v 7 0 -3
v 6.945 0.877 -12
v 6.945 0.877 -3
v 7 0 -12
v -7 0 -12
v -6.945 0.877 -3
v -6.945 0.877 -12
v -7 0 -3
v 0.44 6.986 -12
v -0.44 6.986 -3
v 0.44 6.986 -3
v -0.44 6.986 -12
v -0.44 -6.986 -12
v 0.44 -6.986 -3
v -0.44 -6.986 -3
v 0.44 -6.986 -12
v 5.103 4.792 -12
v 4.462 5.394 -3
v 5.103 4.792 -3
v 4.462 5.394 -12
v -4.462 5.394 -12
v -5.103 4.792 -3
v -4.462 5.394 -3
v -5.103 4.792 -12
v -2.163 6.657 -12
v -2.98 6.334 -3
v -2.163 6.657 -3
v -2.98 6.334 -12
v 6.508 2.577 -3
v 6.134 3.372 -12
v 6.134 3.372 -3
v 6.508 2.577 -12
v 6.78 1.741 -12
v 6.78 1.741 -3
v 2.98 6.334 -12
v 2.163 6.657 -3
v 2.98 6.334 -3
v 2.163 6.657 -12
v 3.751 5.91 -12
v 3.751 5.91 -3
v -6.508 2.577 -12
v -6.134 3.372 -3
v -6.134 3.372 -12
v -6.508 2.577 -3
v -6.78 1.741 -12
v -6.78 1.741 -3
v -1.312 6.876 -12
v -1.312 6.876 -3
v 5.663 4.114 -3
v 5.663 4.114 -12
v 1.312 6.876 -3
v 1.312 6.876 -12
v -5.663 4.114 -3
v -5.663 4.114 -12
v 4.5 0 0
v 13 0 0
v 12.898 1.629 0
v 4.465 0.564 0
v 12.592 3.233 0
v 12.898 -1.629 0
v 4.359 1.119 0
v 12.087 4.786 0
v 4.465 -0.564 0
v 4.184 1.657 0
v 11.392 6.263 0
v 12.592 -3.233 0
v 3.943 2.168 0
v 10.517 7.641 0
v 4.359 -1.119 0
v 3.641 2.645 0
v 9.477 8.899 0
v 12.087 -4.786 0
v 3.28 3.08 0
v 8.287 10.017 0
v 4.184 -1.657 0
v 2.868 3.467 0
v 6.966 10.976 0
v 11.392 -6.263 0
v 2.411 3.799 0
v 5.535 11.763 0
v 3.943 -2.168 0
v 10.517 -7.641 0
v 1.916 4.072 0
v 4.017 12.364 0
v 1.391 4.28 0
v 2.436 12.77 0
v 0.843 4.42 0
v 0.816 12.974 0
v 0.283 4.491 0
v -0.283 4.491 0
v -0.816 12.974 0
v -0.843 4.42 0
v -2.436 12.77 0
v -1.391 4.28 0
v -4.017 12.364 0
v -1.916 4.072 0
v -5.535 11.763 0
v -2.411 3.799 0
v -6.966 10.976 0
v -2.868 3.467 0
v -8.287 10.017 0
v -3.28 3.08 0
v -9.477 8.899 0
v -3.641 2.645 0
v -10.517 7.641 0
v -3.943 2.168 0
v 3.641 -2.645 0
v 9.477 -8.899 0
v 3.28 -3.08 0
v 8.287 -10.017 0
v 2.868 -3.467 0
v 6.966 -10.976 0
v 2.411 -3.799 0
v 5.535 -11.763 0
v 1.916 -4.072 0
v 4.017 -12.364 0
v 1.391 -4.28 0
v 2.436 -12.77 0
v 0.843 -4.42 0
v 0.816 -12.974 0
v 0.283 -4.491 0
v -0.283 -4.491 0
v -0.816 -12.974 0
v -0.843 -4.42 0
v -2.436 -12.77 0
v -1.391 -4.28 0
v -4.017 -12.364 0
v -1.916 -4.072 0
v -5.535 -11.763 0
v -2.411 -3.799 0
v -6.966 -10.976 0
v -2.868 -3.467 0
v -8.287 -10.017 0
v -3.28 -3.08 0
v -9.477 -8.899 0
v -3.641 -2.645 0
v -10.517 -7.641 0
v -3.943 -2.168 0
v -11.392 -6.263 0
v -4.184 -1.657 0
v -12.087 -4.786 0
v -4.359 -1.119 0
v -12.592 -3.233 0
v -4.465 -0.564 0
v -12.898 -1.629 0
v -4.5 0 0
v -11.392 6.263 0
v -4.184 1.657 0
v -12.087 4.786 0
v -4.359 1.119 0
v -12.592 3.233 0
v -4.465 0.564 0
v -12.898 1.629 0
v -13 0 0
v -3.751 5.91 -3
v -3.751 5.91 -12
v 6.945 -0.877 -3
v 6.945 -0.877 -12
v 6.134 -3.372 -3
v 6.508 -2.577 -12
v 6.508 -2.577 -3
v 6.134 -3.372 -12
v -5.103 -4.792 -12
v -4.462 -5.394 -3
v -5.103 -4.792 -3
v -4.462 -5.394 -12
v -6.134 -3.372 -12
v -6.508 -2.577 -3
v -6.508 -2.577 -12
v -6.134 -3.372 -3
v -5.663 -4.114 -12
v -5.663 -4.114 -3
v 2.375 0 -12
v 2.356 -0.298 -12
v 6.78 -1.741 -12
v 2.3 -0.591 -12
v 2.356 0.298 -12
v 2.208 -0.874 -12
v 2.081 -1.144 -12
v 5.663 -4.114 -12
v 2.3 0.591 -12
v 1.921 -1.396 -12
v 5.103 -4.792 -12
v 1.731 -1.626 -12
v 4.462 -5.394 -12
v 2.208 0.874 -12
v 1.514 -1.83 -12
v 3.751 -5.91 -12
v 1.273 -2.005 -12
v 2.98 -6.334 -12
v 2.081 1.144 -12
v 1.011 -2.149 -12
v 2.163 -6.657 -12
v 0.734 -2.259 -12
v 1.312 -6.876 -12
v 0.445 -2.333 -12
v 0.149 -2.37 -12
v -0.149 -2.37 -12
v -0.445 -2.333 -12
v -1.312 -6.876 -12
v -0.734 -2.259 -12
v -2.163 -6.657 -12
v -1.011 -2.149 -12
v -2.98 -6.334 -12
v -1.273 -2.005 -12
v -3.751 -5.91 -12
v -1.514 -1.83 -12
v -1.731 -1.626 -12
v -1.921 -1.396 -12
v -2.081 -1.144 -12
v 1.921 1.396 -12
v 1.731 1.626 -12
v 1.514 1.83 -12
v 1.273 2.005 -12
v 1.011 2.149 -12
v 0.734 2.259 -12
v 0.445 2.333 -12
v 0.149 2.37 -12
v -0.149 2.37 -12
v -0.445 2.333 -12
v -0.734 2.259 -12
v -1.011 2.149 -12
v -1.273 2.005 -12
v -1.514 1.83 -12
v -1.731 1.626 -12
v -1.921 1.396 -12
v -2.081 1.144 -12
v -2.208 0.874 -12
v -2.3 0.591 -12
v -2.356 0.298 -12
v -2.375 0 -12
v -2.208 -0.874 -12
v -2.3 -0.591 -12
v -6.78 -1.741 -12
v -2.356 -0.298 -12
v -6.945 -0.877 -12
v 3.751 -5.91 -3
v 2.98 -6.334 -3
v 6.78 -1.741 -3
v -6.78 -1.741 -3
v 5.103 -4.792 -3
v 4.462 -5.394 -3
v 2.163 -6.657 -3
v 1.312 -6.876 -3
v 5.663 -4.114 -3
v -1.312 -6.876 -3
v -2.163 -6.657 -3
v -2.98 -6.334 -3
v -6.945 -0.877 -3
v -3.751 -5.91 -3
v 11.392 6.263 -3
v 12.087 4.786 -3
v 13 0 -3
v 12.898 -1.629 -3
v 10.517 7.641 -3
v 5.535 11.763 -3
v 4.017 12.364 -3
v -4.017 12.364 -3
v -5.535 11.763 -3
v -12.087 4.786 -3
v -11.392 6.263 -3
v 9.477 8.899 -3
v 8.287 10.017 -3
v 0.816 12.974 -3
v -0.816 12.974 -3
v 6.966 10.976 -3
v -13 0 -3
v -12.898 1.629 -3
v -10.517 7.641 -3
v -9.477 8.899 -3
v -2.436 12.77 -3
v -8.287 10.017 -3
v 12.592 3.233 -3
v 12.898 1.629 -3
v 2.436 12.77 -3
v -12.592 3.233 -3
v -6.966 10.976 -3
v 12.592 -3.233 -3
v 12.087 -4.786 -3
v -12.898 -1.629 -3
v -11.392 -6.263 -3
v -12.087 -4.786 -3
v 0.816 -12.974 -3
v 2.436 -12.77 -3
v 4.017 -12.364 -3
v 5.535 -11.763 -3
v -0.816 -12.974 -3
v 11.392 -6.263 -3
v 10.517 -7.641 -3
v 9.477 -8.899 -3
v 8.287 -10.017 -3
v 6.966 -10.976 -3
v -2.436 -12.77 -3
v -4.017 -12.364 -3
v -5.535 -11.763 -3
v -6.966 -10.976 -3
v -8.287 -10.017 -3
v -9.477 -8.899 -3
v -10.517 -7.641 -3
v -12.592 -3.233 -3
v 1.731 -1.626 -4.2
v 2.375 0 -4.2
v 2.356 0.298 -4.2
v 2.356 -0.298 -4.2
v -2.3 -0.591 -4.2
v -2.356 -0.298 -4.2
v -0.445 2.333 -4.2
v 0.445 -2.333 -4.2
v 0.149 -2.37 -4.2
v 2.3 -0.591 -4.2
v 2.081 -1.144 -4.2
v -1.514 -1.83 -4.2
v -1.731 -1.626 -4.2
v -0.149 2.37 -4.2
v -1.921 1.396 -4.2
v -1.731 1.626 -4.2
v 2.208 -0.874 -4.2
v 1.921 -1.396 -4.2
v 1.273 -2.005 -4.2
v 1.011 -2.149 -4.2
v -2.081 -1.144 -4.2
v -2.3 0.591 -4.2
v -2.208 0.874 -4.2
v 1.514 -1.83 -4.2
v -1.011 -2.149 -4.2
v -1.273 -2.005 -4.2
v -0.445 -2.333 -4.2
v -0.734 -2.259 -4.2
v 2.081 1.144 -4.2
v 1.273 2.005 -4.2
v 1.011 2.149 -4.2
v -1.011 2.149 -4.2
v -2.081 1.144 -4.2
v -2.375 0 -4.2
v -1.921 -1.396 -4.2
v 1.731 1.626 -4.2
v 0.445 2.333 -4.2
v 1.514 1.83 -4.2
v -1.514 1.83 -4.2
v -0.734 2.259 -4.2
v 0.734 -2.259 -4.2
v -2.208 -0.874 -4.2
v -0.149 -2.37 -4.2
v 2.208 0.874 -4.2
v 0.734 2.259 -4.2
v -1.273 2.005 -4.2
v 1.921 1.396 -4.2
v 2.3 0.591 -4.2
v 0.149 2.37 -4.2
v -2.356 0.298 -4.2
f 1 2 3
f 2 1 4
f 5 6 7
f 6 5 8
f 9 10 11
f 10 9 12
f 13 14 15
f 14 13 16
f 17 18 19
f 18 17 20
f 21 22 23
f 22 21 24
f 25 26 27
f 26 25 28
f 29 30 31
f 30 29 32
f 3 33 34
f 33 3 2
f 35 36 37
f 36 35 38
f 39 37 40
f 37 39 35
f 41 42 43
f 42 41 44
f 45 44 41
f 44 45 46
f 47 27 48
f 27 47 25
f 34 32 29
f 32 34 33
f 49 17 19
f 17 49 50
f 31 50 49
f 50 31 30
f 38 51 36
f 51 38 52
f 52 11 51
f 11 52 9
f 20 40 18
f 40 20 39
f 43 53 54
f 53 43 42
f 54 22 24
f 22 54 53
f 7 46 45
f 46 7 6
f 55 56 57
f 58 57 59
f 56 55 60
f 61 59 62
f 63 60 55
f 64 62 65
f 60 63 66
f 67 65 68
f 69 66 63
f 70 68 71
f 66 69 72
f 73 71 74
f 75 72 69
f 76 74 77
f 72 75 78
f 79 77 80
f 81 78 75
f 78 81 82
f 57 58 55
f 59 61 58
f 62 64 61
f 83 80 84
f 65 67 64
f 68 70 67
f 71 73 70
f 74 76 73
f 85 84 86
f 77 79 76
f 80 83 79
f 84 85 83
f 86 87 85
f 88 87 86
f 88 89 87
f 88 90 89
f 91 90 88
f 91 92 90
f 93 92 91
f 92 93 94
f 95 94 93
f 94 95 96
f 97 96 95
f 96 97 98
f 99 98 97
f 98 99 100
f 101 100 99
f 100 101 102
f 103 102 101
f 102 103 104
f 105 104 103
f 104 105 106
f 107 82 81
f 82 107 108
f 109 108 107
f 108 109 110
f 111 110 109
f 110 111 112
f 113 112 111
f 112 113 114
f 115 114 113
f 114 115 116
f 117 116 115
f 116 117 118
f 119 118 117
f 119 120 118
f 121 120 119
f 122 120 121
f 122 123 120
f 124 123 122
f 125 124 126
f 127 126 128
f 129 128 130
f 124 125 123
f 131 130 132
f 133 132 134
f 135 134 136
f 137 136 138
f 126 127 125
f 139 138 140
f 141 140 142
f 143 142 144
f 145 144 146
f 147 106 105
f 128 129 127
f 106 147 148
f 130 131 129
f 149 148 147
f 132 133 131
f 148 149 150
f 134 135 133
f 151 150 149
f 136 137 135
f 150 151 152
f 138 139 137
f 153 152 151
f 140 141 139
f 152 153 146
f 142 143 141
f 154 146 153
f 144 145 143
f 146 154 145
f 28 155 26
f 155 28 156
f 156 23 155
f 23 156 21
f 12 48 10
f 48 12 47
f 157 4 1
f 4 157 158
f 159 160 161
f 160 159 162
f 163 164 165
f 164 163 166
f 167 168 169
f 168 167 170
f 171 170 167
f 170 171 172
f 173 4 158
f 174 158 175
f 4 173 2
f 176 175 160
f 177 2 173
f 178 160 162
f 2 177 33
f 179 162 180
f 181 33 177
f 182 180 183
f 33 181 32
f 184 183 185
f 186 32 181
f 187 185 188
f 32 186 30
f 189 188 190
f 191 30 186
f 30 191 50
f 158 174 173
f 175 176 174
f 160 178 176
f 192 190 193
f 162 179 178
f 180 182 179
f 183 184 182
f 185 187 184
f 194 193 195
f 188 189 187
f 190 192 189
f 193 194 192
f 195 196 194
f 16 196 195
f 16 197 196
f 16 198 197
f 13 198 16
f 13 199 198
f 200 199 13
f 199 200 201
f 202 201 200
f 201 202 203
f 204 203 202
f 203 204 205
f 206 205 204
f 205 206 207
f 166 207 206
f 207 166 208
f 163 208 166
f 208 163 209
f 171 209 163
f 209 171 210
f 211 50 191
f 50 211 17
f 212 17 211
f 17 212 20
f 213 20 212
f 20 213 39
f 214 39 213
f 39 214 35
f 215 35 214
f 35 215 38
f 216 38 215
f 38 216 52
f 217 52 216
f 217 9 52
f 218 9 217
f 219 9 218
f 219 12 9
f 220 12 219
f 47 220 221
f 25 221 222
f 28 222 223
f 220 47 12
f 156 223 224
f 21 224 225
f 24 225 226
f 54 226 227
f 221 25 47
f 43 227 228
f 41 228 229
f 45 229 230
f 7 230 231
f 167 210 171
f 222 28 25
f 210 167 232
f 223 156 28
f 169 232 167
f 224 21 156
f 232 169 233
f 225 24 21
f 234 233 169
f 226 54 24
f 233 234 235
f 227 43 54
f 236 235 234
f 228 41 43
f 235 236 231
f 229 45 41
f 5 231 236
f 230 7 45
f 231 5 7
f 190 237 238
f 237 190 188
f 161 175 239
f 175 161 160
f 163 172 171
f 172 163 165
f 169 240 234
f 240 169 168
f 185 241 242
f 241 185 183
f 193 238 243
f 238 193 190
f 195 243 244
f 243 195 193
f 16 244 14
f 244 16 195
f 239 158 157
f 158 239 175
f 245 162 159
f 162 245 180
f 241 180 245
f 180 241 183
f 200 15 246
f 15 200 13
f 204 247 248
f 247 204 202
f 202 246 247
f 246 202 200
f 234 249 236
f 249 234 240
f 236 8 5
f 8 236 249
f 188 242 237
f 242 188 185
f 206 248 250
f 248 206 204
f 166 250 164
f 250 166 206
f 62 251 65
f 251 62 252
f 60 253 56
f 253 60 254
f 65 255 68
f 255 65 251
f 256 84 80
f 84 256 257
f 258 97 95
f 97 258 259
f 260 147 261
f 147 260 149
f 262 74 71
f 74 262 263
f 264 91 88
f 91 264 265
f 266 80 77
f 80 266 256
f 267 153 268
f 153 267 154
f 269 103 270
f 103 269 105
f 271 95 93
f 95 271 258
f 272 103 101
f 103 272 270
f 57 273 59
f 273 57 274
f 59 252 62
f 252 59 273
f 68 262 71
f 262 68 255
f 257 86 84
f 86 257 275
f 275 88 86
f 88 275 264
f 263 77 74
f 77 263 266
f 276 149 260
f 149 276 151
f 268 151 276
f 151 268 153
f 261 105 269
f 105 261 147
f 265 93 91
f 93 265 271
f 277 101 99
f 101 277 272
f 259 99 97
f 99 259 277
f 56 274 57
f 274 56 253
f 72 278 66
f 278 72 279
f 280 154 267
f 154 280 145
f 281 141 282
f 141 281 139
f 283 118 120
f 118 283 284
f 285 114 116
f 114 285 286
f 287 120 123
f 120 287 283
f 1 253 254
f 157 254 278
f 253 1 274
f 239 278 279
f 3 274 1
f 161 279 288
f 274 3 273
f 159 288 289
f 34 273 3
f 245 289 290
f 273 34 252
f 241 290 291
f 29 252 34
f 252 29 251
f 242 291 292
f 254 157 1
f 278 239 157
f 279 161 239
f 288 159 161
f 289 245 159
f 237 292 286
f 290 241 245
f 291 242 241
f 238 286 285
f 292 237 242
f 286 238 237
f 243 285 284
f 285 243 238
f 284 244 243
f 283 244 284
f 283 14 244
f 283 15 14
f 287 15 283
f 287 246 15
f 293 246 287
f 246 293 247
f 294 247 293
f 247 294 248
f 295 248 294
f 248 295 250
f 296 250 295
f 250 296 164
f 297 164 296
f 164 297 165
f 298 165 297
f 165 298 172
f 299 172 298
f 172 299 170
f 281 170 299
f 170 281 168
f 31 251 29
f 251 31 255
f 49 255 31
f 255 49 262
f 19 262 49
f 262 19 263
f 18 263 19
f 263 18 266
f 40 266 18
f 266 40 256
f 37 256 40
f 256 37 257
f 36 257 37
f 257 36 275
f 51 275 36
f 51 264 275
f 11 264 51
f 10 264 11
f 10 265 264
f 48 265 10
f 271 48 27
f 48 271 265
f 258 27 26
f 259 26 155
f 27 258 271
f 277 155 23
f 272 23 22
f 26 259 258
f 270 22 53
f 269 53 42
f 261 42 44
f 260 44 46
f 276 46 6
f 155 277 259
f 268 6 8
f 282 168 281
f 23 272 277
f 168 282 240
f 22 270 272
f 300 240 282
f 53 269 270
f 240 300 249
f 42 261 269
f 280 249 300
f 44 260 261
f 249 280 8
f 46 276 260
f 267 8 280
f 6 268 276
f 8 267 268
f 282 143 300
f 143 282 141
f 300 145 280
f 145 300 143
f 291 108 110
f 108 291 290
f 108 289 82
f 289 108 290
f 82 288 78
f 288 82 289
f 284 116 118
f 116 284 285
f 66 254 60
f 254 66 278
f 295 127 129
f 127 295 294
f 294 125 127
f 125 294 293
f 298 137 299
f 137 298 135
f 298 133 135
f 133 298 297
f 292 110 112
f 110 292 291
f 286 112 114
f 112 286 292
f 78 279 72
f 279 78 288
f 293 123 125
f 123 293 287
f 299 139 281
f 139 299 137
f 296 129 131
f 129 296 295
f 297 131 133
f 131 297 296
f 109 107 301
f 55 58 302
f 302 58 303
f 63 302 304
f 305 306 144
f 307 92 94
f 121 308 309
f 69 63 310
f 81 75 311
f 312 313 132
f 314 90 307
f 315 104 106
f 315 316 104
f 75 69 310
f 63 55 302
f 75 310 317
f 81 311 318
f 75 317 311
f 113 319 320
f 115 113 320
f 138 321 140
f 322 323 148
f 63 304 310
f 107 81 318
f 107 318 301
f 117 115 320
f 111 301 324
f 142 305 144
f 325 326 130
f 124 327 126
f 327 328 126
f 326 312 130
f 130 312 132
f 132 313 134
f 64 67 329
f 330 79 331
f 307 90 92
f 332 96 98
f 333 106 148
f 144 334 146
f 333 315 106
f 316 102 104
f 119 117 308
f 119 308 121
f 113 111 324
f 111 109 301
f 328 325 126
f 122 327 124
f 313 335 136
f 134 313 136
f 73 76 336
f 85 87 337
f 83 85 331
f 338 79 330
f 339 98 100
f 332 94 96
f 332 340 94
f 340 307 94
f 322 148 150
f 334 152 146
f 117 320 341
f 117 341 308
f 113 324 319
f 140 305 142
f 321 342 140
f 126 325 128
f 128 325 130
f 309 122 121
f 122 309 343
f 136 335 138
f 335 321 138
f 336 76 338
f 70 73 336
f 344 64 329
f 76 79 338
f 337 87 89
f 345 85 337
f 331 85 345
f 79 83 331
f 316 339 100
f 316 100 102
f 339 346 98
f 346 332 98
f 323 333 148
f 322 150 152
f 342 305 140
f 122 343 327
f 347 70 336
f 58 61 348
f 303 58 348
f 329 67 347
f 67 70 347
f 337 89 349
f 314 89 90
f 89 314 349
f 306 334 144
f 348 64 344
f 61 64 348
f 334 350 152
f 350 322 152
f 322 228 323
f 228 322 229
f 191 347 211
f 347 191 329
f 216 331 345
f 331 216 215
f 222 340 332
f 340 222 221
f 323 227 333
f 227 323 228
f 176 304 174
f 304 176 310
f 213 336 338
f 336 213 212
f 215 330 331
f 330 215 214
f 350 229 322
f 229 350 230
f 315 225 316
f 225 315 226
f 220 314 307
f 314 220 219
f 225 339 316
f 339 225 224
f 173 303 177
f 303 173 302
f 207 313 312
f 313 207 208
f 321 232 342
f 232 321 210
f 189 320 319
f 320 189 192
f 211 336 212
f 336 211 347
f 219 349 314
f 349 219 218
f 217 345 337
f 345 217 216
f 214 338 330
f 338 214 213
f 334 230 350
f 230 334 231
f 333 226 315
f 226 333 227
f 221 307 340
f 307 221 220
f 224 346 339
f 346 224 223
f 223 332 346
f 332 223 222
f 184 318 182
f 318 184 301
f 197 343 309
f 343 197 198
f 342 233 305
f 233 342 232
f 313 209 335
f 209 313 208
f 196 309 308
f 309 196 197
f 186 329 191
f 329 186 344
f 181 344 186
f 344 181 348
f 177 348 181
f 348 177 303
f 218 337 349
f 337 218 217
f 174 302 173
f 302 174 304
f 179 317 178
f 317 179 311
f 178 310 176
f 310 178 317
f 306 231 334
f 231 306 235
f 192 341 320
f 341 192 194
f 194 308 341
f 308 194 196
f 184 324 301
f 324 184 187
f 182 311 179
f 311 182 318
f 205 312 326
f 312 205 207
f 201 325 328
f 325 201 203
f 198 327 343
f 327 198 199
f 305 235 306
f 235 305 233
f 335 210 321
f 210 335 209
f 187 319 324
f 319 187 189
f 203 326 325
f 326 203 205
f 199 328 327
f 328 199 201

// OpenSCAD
$fn = 50;


difference() {
	union() {
		translate(v = [0, 0, -12.0000000000]) {
			cylinder(h = 12, r = 7.0000000000);
		}
		translate(v = [0, 0, -3.0000000000]) {
			cylinder(h = 3, r = 13.0000000000);
		}
	}
	union() {
		translate(v = [0, 0, 0]) {
			rotate(a = [0, 0, 0]) {
				difference() {
					union() {
						#translate(v = [0, 0, -12.0000000000]) {
							cylinder(h = 12, r = 2.2500000000);
						}
						#translate(v = [0, 0, -4.2000000000]) {
							cylinder(h = 4.2000000000, r1 = 2.3750000000, r2 = 4.5000000000);
						}
						#translate(v = [0, 0, -12.0000000000]) {
							cylinder(h = 12, r = 2.3750000000);
						}
						#translate(v = [0, 0, -12.0000000000]) {
							cylinder(h = 12, r = 2.2500000000);
						}
					}
					union();
				}
			}
		}
	}
}
